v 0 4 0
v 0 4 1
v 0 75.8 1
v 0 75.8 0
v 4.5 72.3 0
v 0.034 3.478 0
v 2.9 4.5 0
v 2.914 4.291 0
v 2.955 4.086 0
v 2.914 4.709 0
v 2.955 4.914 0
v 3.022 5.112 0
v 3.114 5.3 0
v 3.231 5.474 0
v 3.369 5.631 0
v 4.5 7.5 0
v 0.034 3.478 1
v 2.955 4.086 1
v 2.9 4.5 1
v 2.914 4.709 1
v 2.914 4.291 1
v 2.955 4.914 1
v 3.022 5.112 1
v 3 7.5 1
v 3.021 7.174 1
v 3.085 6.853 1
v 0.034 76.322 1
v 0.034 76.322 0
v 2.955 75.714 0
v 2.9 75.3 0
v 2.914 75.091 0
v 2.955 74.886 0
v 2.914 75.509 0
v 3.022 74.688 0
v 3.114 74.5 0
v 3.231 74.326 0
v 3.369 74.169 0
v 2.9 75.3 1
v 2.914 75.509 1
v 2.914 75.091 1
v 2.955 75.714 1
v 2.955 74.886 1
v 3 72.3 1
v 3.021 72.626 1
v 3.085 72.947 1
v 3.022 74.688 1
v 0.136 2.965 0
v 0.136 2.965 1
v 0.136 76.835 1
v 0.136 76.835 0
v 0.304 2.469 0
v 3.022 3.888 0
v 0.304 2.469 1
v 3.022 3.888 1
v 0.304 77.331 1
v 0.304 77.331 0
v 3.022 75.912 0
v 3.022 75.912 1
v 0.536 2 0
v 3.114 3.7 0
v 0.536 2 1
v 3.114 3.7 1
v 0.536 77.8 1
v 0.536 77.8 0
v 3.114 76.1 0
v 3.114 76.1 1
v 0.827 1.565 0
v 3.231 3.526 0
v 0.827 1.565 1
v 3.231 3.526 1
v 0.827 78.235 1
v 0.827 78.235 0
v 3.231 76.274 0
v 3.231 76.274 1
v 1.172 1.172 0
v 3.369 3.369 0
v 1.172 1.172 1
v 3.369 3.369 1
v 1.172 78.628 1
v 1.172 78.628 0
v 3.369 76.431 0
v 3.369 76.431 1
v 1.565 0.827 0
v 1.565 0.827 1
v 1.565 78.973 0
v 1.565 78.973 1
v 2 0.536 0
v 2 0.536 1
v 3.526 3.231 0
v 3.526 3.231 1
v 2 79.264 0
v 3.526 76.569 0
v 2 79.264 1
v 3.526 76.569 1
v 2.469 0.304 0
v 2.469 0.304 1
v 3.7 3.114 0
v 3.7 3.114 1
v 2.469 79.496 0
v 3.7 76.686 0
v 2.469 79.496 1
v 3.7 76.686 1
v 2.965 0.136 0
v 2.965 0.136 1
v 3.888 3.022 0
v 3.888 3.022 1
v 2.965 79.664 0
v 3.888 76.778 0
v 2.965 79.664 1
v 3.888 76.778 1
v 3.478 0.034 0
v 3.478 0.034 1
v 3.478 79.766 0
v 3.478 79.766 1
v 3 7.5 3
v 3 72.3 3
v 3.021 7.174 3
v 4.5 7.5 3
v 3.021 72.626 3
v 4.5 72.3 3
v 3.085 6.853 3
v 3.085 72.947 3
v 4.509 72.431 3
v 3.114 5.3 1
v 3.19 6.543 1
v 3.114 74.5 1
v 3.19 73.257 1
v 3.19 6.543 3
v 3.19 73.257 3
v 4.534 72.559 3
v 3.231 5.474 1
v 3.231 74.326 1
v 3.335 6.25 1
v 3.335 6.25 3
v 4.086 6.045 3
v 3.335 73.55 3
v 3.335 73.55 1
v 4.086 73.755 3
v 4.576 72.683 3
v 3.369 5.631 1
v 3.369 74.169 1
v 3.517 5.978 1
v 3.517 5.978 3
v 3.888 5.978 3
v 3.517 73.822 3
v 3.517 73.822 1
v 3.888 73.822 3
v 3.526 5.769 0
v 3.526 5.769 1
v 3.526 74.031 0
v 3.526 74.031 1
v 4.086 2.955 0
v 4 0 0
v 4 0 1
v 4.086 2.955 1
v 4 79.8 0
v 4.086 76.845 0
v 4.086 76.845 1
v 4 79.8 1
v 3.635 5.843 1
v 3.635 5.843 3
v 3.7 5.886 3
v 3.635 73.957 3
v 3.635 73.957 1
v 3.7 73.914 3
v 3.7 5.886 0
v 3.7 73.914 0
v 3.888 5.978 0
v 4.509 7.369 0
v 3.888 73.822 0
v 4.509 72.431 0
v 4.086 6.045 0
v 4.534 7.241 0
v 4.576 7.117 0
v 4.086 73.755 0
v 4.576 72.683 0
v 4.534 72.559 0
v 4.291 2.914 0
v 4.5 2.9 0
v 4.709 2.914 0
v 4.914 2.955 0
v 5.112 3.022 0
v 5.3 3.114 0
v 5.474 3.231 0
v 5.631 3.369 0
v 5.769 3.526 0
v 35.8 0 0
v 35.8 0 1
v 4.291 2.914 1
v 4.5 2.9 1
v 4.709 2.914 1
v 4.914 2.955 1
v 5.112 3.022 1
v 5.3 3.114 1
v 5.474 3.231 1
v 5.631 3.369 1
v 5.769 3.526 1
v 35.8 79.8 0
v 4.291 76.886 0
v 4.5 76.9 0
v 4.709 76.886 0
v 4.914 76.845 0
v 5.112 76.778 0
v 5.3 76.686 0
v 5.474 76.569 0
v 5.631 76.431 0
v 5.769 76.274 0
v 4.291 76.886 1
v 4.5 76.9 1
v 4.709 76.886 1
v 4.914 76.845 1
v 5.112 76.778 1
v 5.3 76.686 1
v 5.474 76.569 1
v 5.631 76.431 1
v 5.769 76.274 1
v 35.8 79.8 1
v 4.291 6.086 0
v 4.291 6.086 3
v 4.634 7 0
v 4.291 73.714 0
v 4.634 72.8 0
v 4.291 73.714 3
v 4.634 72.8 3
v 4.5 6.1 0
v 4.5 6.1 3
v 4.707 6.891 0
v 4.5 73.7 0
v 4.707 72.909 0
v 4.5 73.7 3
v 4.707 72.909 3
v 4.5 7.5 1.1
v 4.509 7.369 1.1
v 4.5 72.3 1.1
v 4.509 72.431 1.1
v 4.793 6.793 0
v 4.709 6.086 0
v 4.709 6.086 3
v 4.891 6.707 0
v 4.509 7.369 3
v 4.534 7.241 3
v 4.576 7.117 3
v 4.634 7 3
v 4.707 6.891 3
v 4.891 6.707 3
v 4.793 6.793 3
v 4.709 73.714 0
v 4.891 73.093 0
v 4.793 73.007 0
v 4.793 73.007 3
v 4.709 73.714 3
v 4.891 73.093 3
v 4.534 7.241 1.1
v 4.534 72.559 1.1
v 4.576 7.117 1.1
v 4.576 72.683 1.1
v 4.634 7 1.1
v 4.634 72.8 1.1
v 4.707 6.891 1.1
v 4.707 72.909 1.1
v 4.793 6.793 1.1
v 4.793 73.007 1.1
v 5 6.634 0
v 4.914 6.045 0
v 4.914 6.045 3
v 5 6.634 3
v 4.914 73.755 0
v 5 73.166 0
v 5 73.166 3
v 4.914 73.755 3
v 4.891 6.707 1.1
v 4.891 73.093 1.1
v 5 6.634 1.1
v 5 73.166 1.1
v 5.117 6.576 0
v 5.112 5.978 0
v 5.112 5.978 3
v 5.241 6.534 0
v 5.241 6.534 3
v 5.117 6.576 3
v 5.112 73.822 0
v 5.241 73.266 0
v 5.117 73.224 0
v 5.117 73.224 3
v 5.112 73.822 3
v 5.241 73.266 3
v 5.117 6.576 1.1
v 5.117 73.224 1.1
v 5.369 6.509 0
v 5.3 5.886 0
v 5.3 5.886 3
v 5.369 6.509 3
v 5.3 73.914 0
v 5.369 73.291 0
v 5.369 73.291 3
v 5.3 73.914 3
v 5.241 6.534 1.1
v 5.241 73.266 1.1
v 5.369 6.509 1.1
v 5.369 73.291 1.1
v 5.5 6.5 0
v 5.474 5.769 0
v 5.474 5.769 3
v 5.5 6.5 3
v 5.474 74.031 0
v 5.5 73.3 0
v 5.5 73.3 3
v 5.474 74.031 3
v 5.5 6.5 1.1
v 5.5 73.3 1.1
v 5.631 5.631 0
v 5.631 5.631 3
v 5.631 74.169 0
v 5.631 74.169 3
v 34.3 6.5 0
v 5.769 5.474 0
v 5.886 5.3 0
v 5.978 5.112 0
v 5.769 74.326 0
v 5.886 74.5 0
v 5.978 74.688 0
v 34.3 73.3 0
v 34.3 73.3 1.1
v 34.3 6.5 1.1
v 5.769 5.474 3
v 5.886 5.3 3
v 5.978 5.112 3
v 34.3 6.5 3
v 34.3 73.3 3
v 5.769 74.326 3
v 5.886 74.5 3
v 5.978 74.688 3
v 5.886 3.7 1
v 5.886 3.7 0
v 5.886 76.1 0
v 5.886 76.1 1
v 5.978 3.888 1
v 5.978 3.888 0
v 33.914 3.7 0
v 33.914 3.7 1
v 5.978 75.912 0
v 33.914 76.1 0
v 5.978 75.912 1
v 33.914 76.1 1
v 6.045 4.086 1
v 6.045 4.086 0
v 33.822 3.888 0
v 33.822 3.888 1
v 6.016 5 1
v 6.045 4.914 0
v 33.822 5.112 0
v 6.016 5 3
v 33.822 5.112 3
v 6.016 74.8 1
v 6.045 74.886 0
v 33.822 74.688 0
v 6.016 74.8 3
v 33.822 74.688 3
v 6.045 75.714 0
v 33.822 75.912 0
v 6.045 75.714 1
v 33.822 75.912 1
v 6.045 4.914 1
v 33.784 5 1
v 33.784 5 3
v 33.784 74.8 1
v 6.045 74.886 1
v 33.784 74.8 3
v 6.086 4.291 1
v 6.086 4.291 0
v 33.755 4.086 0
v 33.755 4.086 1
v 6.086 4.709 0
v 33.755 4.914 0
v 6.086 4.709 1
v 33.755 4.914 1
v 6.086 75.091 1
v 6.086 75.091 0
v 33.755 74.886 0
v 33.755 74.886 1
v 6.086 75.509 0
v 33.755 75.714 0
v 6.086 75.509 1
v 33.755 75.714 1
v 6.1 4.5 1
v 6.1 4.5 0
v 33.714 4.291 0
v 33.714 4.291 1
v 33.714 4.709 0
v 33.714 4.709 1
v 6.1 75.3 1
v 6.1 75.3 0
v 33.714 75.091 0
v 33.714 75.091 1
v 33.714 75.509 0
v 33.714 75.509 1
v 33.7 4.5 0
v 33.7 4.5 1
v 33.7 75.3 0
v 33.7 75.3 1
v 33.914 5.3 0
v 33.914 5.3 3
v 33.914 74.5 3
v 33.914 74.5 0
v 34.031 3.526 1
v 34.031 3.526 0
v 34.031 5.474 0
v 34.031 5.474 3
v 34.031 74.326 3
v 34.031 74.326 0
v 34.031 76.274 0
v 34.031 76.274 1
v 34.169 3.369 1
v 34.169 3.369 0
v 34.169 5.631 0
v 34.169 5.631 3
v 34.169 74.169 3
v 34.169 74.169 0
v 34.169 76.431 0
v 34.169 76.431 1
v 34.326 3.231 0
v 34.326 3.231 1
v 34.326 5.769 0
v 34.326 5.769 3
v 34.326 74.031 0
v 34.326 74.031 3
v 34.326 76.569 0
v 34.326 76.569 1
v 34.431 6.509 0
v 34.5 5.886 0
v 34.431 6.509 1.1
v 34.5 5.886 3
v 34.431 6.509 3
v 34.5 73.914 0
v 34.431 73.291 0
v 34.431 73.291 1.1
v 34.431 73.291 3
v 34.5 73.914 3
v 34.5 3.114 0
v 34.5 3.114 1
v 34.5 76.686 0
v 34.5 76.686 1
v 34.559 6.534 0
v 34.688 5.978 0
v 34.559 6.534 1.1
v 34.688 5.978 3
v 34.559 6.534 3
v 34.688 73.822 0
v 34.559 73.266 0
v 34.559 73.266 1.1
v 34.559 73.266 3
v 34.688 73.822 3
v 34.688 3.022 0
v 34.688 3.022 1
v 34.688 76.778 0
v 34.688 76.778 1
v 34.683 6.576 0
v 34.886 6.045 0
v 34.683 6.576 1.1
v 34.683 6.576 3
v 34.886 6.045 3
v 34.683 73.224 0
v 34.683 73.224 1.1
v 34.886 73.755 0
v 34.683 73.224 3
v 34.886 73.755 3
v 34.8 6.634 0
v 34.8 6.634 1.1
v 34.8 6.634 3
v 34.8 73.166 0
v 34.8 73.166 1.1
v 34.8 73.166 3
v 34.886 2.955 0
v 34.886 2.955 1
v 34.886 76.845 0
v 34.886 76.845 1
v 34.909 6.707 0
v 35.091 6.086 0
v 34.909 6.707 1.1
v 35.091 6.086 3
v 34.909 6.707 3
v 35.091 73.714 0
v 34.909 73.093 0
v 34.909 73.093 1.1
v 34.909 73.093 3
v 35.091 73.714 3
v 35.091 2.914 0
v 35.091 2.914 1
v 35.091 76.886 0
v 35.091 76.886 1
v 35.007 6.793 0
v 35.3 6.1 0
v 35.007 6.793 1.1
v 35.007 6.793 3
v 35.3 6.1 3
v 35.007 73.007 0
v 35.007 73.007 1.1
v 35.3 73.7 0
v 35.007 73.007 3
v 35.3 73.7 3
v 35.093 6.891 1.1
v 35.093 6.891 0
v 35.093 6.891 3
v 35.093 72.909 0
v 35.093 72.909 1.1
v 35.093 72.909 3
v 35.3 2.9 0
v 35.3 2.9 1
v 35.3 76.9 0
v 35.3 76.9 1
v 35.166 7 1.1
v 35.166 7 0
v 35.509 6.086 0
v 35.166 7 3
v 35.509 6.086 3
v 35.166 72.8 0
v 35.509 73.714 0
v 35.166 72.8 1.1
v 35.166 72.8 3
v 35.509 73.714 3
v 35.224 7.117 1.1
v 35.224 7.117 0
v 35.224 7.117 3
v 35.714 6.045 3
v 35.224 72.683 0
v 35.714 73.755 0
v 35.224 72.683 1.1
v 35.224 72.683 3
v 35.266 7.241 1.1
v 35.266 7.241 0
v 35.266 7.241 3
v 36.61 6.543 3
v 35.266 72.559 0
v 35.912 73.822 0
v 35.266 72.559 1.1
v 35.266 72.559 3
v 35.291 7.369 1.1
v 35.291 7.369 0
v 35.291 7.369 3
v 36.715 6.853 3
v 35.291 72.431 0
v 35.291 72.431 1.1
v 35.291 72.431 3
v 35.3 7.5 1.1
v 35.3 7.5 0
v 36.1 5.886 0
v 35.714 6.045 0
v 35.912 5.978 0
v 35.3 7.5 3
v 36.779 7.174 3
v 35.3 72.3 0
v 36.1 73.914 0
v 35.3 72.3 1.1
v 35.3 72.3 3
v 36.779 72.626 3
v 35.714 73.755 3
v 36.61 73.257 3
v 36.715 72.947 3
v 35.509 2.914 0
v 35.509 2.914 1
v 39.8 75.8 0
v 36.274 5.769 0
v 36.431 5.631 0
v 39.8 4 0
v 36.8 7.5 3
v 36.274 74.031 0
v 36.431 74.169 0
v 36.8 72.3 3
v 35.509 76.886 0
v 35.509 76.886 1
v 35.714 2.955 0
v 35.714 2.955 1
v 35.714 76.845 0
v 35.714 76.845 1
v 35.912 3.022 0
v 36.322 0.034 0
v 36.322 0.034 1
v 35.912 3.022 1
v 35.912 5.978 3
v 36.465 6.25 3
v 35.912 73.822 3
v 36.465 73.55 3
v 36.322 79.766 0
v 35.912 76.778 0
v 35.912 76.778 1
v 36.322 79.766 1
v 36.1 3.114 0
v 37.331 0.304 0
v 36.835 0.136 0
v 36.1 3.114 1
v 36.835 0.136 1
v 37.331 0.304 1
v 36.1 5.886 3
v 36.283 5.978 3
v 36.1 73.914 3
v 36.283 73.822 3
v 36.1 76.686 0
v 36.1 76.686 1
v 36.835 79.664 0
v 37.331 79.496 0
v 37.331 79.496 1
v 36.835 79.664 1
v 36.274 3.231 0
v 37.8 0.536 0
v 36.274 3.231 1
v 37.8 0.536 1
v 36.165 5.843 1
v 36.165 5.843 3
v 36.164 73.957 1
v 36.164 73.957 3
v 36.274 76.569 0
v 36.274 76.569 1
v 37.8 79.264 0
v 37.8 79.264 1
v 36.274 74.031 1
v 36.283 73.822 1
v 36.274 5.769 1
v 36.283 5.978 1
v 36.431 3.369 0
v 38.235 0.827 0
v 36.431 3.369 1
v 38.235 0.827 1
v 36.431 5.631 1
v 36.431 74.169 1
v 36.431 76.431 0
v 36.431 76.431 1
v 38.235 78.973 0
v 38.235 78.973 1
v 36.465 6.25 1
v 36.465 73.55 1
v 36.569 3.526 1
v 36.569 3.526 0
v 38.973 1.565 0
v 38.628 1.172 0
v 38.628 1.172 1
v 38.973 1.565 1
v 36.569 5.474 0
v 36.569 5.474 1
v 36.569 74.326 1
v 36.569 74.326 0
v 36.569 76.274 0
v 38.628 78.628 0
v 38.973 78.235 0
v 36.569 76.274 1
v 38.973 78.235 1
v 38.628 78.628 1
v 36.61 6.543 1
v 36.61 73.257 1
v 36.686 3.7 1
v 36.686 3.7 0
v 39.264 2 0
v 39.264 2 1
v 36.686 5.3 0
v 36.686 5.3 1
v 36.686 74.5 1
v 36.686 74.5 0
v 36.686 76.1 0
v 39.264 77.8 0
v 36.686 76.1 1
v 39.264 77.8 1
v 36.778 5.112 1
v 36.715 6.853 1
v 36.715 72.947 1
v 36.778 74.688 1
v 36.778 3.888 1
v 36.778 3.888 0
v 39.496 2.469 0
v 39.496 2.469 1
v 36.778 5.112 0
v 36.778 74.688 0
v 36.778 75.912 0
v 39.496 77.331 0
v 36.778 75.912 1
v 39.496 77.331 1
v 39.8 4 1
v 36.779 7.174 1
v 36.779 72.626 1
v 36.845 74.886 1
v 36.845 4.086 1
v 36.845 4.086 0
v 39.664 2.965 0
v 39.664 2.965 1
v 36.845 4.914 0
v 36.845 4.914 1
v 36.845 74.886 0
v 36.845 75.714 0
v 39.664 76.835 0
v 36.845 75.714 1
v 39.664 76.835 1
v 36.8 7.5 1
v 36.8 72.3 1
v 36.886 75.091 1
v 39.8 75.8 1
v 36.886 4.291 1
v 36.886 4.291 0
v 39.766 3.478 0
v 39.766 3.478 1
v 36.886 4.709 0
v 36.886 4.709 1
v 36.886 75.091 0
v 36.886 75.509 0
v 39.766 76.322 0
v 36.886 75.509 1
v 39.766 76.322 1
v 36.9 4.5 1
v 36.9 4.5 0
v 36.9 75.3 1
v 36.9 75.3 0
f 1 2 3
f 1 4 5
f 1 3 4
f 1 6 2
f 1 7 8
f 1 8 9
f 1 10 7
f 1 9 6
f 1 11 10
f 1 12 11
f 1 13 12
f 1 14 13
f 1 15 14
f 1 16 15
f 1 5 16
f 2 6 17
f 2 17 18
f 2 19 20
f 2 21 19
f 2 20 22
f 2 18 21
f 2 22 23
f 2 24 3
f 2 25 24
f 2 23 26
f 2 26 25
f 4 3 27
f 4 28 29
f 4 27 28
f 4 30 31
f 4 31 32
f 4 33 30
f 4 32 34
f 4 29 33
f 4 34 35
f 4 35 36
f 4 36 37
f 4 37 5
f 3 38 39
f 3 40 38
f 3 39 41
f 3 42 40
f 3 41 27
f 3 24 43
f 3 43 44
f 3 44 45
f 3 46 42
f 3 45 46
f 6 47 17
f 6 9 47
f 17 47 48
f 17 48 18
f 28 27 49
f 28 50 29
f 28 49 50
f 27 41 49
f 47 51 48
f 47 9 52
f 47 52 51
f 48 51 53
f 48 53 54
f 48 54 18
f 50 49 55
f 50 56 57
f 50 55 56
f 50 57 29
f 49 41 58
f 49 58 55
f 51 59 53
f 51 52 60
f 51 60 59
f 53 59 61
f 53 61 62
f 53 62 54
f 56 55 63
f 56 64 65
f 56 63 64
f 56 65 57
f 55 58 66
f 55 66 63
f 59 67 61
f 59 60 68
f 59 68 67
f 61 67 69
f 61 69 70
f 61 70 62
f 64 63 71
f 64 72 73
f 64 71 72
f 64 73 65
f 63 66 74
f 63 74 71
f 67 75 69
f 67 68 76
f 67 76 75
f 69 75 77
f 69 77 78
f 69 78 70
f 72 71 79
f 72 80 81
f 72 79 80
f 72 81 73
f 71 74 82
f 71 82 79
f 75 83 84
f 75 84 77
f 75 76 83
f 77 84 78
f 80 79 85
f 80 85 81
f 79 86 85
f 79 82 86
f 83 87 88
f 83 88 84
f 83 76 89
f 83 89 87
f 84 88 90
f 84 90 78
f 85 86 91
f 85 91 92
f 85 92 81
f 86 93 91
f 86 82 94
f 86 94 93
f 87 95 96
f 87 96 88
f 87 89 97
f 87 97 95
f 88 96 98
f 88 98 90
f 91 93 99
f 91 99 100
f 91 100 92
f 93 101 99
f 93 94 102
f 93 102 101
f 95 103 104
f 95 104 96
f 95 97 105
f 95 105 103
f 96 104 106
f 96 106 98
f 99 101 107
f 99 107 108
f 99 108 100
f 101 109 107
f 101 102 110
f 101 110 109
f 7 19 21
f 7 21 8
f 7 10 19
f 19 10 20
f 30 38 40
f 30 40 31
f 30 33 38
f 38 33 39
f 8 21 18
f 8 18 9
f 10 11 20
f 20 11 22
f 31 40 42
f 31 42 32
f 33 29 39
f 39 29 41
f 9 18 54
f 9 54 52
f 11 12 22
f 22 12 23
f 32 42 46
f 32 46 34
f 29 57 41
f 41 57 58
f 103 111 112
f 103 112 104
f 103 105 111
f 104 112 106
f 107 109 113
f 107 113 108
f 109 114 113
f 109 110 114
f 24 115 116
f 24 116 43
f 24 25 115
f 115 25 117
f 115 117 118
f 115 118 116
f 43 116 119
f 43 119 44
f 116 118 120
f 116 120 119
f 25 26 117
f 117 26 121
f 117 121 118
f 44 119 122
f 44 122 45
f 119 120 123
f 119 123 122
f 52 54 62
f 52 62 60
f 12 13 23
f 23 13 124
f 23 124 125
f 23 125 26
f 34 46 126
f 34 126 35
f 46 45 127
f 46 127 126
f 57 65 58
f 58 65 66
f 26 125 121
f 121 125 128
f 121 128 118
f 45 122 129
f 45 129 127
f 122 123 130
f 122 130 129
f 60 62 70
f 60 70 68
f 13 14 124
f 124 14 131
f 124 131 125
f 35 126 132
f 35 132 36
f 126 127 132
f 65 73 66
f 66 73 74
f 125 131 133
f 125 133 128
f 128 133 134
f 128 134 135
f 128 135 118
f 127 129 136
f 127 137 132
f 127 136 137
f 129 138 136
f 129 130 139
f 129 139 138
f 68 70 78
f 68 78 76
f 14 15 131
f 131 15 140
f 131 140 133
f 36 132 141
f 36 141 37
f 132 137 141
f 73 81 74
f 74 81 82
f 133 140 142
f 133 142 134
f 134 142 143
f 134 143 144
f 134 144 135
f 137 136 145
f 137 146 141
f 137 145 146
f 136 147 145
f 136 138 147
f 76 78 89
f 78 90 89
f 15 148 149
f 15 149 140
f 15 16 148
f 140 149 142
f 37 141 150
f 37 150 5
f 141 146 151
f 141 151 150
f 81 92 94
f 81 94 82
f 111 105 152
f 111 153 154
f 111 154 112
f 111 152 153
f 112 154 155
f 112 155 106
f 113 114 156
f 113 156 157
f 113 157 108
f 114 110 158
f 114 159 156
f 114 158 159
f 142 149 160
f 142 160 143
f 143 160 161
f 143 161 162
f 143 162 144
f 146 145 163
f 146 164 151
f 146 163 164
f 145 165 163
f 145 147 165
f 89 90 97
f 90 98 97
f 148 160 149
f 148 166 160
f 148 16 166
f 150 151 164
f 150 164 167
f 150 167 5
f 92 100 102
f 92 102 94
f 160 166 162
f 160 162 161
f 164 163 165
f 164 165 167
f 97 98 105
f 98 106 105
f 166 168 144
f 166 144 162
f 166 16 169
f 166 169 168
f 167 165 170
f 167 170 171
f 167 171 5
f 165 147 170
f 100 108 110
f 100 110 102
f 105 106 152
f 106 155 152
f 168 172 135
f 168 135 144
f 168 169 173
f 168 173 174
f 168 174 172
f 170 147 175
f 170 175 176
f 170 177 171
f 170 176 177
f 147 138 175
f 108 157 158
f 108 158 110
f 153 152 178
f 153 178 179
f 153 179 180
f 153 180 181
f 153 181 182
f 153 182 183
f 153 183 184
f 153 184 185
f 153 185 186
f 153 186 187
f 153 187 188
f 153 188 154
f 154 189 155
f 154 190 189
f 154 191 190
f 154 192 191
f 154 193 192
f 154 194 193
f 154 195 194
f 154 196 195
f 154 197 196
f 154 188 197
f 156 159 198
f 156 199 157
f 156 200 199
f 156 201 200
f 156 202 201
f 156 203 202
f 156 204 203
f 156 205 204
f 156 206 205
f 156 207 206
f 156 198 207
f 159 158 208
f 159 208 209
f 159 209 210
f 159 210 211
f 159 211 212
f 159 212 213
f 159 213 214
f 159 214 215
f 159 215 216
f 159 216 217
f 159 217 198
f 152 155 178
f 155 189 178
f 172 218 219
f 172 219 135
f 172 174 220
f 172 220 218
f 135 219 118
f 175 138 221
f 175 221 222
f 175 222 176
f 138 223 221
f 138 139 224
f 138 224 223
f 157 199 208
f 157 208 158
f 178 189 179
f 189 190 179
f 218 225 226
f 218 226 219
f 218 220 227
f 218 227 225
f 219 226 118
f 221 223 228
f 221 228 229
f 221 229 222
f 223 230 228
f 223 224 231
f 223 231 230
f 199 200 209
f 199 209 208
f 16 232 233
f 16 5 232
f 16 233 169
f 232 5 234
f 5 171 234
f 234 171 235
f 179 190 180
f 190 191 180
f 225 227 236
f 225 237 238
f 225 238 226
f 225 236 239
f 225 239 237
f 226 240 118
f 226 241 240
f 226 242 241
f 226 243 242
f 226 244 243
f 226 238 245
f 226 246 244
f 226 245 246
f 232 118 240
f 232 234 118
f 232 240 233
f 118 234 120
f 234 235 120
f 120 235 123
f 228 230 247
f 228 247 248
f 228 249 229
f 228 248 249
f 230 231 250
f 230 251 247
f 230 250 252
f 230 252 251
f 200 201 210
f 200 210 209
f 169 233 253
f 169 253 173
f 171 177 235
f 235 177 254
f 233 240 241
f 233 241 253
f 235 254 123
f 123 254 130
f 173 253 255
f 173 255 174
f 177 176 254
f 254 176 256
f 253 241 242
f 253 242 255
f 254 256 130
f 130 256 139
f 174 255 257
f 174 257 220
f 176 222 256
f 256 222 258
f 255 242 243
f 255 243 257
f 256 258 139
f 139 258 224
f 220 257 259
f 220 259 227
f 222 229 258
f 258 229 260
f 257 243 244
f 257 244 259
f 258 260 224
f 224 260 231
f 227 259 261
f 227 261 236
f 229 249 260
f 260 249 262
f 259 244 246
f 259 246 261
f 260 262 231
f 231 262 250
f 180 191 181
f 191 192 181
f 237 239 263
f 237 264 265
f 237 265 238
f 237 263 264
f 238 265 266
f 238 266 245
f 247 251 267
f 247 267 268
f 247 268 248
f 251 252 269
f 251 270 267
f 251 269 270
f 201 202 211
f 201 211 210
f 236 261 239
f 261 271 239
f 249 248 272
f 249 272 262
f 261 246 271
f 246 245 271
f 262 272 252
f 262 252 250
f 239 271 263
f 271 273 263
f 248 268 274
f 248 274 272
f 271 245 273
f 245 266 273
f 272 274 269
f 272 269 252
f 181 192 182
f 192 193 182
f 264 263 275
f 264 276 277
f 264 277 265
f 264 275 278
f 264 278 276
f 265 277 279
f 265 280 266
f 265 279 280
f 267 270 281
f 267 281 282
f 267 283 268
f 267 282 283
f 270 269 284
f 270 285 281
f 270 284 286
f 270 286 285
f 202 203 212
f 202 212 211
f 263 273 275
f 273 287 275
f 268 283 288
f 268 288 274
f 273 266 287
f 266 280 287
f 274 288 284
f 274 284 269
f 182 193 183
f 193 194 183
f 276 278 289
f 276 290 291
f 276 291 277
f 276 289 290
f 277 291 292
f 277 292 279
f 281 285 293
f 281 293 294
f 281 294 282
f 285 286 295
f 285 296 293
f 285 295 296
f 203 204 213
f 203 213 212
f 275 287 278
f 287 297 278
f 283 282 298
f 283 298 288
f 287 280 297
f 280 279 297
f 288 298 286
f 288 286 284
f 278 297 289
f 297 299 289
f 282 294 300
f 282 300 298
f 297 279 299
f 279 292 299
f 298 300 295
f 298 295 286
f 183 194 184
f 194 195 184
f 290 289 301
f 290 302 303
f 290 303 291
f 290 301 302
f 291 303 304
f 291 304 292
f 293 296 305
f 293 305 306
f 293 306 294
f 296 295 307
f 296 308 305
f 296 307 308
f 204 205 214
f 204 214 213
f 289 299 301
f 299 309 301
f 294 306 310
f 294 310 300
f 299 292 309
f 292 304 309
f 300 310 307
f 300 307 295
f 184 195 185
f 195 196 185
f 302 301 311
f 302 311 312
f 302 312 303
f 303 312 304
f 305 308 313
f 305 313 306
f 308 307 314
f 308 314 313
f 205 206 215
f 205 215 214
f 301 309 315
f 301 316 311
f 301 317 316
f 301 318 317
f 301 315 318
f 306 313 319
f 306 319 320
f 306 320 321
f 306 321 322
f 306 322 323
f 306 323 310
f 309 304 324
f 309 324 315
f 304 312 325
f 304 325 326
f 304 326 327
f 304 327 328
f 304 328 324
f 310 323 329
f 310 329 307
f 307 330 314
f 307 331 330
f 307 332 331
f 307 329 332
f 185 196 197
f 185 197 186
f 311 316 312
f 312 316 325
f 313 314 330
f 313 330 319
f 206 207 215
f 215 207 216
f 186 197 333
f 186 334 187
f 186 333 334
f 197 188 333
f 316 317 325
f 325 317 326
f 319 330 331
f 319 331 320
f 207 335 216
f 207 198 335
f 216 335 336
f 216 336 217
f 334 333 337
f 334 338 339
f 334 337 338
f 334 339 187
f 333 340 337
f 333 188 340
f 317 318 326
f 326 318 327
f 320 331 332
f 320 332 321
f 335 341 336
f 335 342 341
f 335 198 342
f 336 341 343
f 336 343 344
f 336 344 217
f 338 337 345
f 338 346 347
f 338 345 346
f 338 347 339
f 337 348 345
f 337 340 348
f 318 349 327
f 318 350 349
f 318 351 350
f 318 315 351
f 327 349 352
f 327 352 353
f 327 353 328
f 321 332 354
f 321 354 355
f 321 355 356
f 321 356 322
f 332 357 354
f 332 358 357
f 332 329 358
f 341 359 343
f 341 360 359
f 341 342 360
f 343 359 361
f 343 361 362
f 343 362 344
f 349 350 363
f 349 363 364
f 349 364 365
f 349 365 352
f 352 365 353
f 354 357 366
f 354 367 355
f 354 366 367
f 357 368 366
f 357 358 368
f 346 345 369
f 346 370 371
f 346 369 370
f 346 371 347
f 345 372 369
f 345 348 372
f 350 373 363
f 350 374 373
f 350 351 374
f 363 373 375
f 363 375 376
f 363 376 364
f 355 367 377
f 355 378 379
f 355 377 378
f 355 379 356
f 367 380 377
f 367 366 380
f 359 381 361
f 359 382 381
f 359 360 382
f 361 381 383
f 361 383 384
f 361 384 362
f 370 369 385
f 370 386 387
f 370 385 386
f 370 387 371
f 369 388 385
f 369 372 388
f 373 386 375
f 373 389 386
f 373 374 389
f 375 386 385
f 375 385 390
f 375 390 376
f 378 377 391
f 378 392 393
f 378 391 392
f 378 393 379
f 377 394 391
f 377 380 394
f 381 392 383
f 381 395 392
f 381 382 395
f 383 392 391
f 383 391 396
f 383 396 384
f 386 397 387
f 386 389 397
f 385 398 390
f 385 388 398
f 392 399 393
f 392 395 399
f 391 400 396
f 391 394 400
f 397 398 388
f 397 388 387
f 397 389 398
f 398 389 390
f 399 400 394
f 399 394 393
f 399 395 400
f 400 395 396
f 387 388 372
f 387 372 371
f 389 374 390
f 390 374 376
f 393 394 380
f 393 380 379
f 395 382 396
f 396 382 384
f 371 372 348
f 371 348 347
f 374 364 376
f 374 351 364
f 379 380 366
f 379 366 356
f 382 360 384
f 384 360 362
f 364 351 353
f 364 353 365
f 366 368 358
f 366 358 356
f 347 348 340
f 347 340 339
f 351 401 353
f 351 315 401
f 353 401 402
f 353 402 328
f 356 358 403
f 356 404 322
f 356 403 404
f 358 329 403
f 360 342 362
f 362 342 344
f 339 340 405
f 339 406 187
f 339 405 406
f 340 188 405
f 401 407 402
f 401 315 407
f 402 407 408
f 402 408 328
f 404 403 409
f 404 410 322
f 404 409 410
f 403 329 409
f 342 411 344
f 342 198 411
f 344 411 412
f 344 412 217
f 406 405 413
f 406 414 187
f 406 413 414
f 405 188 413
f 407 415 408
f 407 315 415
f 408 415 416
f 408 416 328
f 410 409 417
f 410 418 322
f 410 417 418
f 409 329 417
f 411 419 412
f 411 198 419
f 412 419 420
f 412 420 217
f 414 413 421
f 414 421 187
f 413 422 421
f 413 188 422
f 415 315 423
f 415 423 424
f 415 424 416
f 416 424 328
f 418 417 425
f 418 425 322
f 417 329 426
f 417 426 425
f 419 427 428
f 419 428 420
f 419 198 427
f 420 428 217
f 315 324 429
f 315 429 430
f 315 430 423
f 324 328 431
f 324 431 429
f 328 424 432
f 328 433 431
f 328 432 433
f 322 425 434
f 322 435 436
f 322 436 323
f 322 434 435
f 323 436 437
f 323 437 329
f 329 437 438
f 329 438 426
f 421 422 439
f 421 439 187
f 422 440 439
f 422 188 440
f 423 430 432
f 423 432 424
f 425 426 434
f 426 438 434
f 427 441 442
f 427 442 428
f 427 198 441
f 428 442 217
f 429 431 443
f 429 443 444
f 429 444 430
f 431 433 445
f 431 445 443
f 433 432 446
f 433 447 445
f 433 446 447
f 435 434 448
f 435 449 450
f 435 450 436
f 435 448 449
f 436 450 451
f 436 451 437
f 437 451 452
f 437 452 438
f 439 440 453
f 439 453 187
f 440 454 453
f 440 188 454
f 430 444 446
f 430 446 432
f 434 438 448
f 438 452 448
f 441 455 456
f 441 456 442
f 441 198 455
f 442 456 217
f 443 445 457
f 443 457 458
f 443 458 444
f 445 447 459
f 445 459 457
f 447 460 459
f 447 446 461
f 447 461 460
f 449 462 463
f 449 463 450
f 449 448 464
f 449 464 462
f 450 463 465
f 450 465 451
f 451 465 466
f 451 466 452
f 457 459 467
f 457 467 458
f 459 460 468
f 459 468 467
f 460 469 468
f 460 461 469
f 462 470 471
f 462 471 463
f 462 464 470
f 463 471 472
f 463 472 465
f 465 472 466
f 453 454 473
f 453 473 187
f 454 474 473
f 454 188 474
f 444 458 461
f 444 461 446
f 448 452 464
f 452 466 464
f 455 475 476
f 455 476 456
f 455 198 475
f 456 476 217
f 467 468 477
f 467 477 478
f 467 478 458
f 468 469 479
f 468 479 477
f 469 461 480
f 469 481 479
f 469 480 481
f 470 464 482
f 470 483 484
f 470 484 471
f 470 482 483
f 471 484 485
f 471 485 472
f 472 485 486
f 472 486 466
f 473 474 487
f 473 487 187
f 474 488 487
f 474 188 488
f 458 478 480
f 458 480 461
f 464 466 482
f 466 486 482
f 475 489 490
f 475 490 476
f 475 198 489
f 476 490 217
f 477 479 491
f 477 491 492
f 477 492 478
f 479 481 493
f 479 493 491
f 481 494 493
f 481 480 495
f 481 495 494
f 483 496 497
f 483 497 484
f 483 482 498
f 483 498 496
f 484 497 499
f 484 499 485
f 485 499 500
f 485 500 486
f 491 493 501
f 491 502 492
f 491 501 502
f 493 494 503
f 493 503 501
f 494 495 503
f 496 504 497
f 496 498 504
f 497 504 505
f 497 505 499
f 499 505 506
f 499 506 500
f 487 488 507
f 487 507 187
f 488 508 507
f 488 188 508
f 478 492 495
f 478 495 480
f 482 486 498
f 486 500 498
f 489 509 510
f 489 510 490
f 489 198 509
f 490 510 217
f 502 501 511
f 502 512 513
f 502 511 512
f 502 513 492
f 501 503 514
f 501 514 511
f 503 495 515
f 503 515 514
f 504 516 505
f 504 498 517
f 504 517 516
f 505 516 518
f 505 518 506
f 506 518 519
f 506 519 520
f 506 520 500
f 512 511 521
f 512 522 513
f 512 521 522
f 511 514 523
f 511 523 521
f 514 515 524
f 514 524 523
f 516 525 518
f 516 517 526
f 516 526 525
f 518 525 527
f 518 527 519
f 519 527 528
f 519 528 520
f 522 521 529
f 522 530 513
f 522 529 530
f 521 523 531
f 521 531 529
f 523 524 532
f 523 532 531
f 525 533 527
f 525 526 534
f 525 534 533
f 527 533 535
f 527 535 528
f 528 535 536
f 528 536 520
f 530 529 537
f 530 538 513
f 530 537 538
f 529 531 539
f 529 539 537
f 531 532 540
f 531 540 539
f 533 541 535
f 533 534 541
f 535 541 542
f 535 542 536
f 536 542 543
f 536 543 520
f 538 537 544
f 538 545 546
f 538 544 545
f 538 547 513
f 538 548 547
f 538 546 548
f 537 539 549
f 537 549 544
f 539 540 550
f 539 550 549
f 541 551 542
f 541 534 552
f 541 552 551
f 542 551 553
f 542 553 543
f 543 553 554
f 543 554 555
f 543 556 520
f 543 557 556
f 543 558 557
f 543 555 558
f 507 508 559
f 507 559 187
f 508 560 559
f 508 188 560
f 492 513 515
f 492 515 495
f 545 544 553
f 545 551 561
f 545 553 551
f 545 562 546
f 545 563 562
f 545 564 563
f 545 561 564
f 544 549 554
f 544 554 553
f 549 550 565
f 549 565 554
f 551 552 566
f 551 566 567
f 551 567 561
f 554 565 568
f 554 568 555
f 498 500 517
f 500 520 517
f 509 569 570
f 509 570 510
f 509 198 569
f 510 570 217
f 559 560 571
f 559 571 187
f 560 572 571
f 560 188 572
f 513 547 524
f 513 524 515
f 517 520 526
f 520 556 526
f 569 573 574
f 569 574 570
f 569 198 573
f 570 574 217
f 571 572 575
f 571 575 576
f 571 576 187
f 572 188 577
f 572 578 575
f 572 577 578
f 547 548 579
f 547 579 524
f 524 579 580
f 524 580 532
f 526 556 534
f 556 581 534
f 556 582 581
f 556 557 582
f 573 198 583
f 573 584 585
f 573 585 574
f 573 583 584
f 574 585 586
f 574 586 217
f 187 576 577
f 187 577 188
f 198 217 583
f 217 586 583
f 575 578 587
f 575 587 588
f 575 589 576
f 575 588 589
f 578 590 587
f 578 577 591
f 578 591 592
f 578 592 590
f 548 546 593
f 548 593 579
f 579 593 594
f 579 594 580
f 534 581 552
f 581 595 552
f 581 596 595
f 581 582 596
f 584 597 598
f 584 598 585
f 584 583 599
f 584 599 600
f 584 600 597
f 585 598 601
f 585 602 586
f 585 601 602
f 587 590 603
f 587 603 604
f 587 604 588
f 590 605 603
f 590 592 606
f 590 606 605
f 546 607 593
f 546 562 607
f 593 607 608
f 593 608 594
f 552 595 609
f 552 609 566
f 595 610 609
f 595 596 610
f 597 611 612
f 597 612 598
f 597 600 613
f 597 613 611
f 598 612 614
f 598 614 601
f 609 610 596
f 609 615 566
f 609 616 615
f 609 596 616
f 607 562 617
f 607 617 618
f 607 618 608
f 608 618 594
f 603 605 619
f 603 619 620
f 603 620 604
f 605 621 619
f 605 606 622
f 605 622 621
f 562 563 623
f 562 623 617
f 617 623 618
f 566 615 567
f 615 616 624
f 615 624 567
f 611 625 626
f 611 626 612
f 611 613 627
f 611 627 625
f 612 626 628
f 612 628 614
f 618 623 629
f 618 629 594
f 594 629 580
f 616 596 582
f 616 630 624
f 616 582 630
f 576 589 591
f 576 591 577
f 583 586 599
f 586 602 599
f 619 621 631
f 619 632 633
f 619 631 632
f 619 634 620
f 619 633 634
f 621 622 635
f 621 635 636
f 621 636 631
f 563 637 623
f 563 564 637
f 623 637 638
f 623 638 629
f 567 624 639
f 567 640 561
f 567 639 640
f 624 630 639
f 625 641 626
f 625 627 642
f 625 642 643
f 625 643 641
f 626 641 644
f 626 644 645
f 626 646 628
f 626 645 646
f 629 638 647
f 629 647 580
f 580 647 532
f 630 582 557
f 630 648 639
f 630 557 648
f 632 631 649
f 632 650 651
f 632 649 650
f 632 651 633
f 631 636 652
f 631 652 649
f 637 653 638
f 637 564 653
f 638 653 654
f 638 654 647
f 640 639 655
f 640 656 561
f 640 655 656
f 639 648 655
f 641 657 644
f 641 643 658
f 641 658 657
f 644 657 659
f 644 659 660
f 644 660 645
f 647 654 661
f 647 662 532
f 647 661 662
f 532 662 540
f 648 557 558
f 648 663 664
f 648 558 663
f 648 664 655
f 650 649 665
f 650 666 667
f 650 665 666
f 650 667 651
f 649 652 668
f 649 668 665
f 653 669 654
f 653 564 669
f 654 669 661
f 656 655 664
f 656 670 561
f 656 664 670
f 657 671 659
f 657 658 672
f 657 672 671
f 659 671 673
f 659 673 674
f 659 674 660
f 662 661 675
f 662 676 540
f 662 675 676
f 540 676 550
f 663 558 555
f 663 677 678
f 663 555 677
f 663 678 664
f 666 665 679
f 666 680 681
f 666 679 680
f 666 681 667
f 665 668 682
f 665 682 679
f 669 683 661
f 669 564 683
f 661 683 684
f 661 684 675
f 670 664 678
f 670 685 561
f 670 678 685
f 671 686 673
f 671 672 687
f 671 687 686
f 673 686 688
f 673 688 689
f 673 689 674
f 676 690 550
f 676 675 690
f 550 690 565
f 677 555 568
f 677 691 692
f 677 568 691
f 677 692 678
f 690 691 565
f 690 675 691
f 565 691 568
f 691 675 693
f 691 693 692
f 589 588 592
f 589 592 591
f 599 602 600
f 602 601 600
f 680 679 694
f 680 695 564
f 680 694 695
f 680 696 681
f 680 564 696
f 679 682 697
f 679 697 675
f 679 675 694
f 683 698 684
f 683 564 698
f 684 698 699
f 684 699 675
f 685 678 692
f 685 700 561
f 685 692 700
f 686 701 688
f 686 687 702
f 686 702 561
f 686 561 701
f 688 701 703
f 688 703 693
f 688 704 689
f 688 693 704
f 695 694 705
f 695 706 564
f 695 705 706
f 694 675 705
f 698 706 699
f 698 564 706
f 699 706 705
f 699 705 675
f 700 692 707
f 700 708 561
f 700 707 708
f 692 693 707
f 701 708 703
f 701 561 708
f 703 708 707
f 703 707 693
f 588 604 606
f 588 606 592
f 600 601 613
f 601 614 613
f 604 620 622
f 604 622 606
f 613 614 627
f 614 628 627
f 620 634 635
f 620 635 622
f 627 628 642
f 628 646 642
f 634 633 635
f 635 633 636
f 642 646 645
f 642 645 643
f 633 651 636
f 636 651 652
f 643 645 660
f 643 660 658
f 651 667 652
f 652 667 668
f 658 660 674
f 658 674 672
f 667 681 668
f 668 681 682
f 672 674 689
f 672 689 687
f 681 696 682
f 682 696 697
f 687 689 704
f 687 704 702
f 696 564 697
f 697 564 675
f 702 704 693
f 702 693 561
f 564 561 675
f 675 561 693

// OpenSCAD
// Dilder Case Separator — board cradle variant
//
// Outer footprint matching the base (39.8 x 79.8mm, 4mm corner radius).
// Center cutout sized to the ESP32-S3 board + antenna projection.
// Raised cradle wall around the cutout holds the board in place.
//
// Export:
//   openscad -o case-separator-board-cradle.3mf case-separator-board-cradle.scad

$fn = 48;

// ---- Board (Olimex ESP32-S3-DevKit-Lipo) ----
board_len      = 56;
board_wid      = 28;
antenna_proj   = 6;
usb_overhang   = 2;        // USB-C ports extend past PCB edge

// ---- Waveshare 2.13" display ----
disp_len       = 65;
disp_wid       = 30;

// ---- 1000 mAh battery ----
bat_len        = 52;
bat_wid        = 35;

// ---- Enclosure geometry ----
wall_thk       = 2;
plate_thk      = 1;        // base sheet thickness
pillar         = 5;
slop           = 0.4;
cradle_wall    = 1.5;      // raised wall thickness around the board cutout
cradle_h       = 2;        // wall height above the base sheet

screw_clr      = 3.2;

// ---- Rounding ----
case_corner_r  = 4;
cutout_r       = 1;        // rounded corners on board cutout

// ---- XY layout ----
inner_wid      = max(board_wid, disp_wid, bat_wid) + 2 * slop;
inner_len      = max(board_len + antenna_proj, disp_len + 2 * pillar, bat_len) + 2 * slop;
outer_wid      = inner_wid + 2 * wall_thk;
outer_len      = inner_len + 2 * wall_thk;

pillar_xy = [
    [wall_thk,                             wall_thk                            ],
    [outer_wid - wall_thk - pillar,        wall_thk                            ],
    [wall_thk,                             outer_len - wall_thk - pillar       ],
    [outer_wid - wall_thk - pillar,        outer_len - wall_thk - pillar       ],
];

// Board cutout dimensions (board + antenna + USB overhang + clearance + 1mm wiggle per side)
cutout_extra   = 1;        // extra clearance per side
cutout_w       = board_wid + 2 * (slop + cutout_extra);
cutout_l       = board_len + antenna_proj + usb_overhang + 2 * (slop + cutout_extra);
cutout_x       = (outer_wid - cutout_w) / 2;
cutout_y       = (outer_len - cutout_l) / 2;

// Cradle wall outer dimensions
cradle_outer_w = cutout_w + 2 * cradle_wall;
cradle_outer_l = cutout_l + 2 * cradle_wall;
cradle_x       = cutout_x - cradle_wall;
cradle_y       = cutout_y - cradle_wall;


// ============== SHARED ==============

module rounded_v_box(w, l, h, r, fn = 48) {
    hull() {
        for (x = [r, w - r])
            for (y = [r, l - r])
                translate([x, y, 0])
                    cylinder(r = r, h = h, $fn = fn);
    }
}


// ============== CASE SEPARATOR — BOARD CRADLE ==============

module case_separator_board_cradle() {
    difference() {
        union() {
            // Base sheet — full outer footprint
            rounded_v_box(outer_wid, outer_len, plate_thk, case_corner_r);

            // Cradle wall — raised border around the board cutout
            translate([cradle_x, cradle_y, plate_thk])
            difference() {
                rounded_v_box(cradle_outer_w, cradle_outer_l, cradle_h, cutout_r + cradle_wall);
                translate([cradle_wall, cradle_wall, -0.1])
                    rounded_v_box(cutout_w, cutout_l, cradle_h + 0.2, cutout_r);
            }
        }

        // Board cutout through base sheet
        translate([cutout_x, cutout_y, -0.1])
            rounded_v_box(cutout_w, cutout_l, plate_thk + 0.2, cutout_r);

        // Screw clearance holes
        for (p = pillar_xy)
            translate([p[0] + pillar/2, p[1] + pillar/2, -0.1])
                cylinder(h = plate_thk + cradle_h + 0.2, d = screw_clr);
    }
}

case_separator_board_cradle();
